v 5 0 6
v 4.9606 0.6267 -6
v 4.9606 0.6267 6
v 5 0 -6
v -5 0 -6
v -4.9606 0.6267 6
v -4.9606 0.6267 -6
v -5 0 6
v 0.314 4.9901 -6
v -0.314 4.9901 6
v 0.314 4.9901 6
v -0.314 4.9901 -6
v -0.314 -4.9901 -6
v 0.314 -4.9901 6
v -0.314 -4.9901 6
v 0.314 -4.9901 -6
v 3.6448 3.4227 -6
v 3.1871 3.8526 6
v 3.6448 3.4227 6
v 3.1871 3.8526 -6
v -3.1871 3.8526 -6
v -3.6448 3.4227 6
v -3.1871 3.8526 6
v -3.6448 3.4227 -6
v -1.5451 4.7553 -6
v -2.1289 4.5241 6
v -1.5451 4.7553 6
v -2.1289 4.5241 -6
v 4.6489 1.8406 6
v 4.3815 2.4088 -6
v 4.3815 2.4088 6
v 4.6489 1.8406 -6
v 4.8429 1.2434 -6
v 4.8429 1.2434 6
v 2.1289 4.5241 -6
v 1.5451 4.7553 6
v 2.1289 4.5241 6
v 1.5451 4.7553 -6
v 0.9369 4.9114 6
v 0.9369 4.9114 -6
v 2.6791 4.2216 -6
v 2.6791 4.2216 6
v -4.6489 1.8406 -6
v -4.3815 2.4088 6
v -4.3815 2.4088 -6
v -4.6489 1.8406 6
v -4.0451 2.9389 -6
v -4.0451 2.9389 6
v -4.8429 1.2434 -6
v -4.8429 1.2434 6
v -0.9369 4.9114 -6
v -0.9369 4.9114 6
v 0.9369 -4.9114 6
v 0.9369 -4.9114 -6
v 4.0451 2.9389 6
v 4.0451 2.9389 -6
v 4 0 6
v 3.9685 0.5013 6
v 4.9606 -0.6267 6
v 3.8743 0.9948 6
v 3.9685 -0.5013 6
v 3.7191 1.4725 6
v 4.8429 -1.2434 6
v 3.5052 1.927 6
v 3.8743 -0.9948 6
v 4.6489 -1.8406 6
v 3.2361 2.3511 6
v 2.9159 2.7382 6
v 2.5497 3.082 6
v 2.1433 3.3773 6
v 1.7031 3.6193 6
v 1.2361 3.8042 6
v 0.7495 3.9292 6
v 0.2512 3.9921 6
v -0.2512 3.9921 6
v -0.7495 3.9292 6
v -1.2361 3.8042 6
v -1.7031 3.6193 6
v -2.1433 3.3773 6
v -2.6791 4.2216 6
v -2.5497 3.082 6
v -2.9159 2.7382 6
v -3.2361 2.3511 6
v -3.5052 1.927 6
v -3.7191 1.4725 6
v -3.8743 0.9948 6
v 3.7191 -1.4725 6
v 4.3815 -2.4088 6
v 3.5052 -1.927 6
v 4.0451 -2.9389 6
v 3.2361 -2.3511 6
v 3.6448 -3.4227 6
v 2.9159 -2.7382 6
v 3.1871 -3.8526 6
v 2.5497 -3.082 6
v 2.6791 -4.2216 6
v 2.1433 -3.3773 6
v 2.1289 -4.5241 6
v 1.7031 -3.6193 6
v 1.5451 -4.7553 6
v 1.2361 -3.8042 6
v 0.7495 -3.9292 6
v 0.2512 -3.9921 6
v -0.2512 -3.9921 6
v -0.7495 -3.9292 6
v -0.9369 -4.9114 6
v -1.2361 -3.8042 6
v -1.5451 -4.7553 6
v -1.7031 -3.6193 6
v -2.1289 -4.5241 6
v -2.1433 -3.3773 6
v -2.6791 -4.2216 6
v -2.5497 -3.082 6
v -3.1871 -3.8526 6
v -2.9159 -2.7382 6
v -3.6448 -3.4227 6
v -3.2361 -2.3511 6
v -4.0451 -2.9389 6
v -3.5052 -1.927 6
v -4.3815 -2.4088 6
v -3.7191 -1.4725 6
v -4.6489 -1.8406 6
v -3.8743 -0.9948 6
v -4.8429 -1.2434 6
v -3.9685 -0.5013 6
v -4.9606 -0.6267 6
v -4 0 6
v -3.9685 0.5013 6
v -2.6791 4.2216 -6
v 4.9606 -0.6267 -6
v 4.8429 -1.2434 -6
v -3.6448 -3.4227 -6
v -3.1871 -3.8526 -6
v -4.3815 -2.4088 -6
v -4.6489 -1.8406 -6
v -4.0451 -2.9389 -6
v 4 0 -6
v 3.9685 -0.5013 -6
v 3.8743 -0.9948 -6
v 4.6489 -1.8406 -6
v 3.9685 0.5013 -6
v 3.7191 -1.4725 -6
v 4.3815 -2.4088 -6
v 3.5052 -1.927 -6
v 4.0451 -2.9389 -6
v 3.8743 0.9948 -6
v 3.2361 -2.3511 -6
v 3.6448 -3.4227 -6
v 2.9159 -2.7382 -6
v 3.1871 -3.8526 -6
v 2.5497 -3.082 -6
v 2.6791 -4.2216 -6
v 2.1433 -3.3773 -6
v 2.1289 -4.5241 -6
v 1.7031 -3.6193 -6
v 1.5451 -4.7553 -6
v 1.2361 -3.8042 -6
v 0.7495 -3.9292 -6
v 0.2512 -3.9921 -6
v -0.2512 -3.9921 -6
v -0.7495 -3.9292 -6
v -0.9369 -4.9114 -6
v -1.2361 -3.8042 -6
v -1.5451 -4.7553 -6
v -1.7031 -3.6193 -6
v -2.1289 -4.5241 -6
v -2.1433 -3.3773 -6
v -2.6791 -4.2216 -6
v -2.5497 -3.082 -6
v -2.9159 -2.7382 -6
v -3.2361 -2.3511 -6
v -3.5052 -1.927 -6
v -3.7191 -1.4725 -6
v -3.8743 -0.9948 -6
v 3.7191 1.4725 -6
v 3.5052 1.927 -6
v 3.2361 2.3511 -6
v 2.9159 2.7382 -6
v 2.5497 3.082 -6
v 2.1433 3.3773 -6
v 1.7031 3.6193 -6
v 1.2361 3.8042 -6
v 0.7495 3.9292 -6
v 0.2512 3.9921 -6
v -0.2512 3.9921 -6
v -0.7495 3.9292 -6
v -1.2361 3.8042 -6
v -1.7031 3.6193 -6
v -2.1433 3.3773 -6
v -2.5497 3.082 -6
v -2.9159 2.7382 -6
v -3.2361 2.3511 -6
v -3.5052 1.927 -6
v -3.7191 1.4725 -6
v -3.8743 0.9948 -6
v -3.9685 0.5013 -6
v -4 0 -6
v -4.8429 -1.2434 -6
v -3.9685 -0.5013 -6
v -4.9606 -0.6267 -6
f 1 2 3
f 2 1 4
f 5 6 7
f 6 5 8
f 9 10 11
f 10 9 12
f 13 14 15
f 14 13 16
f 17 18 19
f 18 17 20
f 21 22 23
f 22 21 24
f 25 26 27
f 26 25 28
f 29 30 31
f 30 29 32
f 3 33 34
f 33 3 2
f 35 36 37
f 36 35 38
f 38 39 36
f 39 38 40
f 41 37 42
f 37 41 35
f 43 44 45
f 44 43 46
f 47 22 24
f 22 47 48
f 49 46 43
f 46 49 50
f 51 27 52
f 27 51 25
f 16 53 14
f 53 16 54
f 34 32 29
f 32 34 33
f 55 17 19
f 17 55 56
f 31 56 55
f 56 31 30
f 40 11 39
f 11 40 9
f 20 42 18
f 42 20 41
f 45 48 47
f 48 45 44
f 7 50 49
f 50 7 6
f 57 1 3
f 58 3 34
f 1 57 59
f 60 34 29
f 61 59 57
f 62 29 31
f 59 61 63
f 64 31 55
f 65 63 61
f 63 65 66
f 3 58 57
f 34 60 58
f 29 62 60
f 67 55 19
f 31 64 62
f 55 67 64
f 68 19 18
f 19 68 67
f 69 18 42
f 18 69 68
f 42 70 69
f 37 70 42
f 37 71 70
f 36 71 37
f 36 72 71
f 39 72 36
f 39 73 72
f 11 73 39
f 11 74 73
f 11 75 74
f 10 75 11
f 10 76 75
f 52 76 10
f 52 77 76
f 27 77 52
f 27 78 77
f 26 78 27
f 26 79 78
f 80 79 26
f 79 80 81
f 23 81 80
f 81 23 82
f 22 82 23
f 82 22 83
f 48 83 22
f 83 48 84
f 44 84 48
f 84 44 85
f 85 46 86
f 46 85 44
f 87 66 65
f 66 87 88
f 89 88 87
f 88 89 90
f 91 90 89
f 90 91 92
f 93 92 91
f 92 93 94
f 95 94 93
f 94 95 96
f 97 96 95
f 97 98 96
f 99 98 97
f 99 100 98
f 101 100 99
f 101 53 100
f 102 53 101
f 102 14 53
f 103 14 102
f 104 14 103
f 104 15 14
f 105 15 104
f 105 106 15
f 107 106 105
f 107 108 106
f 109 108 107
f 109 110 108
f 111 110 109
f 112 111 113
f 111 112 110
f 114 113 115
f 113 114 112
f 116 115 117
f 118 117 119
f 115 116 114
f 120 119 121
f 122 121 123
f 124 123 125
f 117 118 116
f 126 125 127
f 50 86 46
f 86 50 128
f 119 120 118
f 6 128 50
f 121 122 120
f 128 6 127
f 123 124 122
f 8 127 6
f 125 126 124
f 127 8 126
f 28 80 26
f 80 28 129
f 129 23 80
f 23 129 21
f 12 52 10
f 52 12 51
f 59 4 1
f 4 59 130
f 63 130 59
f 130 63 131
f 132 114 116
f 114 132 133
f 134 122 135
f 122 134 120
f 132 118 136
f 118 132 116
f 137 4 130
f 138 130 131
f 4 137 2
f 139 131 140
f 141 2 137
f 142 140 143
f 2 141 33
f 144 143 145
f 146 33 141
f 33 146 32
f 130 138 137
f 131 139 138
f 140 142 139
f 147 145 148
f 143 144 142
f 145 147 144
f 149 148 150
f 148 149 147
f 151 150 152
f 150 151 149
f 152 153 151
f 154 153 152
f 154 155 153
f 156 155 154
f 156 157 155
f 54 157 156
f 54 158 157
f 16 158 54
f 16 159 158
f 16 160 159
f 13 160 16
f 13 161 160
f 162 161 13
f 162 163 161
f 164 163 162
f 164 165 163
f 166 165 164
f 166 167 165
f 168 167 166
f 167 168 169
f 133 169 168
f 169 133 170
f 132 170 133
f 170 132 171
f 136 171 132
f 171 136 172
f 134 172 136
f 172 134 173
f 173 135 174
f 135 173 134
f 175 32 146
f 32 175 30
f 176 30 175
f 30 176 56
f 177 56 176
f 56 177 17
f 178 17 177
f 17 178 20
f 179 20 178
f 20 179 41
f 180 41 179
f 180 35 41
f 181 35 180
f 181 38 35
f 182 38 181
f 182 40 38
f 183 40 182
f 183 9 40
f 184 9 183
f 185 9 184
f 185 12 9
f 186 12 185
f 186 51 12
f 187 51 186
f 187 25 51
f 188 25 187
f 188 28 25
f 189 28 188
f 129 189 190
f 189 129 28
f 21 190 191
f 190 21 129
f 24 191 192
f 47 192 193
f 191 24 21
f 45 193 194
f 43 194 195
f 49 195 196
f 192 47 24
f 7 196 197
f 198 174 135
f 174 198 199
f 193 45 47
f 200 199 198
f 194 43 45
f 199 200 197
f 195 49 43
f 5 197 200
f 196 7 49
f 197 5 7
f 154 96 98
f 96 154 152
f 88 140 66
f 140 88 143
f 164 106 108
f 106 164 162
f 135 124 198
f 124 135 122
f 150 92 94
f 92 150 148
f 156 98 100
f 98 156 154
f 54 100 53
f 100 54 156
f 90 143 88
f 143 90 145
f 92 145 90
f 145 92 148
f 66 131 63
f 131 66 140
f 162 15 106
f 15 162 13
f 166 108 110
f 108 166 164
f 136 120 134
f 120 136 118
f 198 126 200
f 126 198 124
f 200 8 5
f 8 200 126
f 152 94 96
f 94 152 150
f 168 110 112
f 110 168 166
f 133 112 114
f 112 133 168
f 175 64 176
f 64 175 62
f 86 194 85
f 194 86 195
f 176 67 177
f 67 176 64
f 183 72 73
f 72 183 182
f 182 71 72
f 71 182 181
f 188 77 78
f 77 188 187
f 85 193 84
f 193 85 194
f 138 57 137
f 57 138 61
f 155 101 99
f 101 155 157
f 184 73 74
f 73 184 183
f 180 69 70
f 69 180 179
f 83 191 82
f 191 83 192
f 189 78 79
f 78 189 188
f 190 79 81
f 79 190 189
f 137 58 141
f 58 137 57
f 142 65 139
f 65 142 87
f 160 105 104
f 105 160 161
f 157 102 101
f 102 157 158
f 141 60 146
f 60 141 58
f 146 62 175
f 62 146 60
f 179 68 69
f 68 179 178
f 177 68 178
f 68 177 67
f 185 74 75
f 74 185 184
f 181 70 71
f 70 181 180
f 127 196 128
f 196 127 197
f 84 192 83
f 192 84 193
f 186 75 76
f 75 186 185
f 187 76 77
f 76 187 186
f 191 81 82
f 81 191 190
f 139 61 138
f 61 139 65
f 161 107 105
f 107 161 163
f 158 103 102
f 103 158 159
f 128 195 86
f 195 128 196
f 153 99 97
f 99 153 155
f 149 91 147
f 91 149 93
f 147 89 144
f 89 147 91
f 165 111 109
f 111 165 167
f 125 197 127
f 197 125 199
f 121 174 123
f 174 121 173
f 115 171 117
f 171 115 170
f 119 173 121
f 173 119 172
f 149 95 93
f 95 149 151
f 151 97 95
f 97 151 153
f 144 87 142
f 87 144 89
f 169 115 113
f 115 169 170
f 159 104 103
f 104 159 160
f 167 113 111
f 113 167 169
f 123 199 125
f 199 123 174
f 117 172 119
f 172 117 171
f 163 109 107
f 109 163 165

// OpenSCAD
$fn = 50;


difference() {
	union() {
		translate(v = [0, 0, -6.0000000000]) {
			cylinder(h = 12, r = 5.0000000000);
		}
	}
	union() {
		translate(v = [0, 0, -100.0000000000]) {
			cylinder(h = 200, r = 4);
		}
	}
}
